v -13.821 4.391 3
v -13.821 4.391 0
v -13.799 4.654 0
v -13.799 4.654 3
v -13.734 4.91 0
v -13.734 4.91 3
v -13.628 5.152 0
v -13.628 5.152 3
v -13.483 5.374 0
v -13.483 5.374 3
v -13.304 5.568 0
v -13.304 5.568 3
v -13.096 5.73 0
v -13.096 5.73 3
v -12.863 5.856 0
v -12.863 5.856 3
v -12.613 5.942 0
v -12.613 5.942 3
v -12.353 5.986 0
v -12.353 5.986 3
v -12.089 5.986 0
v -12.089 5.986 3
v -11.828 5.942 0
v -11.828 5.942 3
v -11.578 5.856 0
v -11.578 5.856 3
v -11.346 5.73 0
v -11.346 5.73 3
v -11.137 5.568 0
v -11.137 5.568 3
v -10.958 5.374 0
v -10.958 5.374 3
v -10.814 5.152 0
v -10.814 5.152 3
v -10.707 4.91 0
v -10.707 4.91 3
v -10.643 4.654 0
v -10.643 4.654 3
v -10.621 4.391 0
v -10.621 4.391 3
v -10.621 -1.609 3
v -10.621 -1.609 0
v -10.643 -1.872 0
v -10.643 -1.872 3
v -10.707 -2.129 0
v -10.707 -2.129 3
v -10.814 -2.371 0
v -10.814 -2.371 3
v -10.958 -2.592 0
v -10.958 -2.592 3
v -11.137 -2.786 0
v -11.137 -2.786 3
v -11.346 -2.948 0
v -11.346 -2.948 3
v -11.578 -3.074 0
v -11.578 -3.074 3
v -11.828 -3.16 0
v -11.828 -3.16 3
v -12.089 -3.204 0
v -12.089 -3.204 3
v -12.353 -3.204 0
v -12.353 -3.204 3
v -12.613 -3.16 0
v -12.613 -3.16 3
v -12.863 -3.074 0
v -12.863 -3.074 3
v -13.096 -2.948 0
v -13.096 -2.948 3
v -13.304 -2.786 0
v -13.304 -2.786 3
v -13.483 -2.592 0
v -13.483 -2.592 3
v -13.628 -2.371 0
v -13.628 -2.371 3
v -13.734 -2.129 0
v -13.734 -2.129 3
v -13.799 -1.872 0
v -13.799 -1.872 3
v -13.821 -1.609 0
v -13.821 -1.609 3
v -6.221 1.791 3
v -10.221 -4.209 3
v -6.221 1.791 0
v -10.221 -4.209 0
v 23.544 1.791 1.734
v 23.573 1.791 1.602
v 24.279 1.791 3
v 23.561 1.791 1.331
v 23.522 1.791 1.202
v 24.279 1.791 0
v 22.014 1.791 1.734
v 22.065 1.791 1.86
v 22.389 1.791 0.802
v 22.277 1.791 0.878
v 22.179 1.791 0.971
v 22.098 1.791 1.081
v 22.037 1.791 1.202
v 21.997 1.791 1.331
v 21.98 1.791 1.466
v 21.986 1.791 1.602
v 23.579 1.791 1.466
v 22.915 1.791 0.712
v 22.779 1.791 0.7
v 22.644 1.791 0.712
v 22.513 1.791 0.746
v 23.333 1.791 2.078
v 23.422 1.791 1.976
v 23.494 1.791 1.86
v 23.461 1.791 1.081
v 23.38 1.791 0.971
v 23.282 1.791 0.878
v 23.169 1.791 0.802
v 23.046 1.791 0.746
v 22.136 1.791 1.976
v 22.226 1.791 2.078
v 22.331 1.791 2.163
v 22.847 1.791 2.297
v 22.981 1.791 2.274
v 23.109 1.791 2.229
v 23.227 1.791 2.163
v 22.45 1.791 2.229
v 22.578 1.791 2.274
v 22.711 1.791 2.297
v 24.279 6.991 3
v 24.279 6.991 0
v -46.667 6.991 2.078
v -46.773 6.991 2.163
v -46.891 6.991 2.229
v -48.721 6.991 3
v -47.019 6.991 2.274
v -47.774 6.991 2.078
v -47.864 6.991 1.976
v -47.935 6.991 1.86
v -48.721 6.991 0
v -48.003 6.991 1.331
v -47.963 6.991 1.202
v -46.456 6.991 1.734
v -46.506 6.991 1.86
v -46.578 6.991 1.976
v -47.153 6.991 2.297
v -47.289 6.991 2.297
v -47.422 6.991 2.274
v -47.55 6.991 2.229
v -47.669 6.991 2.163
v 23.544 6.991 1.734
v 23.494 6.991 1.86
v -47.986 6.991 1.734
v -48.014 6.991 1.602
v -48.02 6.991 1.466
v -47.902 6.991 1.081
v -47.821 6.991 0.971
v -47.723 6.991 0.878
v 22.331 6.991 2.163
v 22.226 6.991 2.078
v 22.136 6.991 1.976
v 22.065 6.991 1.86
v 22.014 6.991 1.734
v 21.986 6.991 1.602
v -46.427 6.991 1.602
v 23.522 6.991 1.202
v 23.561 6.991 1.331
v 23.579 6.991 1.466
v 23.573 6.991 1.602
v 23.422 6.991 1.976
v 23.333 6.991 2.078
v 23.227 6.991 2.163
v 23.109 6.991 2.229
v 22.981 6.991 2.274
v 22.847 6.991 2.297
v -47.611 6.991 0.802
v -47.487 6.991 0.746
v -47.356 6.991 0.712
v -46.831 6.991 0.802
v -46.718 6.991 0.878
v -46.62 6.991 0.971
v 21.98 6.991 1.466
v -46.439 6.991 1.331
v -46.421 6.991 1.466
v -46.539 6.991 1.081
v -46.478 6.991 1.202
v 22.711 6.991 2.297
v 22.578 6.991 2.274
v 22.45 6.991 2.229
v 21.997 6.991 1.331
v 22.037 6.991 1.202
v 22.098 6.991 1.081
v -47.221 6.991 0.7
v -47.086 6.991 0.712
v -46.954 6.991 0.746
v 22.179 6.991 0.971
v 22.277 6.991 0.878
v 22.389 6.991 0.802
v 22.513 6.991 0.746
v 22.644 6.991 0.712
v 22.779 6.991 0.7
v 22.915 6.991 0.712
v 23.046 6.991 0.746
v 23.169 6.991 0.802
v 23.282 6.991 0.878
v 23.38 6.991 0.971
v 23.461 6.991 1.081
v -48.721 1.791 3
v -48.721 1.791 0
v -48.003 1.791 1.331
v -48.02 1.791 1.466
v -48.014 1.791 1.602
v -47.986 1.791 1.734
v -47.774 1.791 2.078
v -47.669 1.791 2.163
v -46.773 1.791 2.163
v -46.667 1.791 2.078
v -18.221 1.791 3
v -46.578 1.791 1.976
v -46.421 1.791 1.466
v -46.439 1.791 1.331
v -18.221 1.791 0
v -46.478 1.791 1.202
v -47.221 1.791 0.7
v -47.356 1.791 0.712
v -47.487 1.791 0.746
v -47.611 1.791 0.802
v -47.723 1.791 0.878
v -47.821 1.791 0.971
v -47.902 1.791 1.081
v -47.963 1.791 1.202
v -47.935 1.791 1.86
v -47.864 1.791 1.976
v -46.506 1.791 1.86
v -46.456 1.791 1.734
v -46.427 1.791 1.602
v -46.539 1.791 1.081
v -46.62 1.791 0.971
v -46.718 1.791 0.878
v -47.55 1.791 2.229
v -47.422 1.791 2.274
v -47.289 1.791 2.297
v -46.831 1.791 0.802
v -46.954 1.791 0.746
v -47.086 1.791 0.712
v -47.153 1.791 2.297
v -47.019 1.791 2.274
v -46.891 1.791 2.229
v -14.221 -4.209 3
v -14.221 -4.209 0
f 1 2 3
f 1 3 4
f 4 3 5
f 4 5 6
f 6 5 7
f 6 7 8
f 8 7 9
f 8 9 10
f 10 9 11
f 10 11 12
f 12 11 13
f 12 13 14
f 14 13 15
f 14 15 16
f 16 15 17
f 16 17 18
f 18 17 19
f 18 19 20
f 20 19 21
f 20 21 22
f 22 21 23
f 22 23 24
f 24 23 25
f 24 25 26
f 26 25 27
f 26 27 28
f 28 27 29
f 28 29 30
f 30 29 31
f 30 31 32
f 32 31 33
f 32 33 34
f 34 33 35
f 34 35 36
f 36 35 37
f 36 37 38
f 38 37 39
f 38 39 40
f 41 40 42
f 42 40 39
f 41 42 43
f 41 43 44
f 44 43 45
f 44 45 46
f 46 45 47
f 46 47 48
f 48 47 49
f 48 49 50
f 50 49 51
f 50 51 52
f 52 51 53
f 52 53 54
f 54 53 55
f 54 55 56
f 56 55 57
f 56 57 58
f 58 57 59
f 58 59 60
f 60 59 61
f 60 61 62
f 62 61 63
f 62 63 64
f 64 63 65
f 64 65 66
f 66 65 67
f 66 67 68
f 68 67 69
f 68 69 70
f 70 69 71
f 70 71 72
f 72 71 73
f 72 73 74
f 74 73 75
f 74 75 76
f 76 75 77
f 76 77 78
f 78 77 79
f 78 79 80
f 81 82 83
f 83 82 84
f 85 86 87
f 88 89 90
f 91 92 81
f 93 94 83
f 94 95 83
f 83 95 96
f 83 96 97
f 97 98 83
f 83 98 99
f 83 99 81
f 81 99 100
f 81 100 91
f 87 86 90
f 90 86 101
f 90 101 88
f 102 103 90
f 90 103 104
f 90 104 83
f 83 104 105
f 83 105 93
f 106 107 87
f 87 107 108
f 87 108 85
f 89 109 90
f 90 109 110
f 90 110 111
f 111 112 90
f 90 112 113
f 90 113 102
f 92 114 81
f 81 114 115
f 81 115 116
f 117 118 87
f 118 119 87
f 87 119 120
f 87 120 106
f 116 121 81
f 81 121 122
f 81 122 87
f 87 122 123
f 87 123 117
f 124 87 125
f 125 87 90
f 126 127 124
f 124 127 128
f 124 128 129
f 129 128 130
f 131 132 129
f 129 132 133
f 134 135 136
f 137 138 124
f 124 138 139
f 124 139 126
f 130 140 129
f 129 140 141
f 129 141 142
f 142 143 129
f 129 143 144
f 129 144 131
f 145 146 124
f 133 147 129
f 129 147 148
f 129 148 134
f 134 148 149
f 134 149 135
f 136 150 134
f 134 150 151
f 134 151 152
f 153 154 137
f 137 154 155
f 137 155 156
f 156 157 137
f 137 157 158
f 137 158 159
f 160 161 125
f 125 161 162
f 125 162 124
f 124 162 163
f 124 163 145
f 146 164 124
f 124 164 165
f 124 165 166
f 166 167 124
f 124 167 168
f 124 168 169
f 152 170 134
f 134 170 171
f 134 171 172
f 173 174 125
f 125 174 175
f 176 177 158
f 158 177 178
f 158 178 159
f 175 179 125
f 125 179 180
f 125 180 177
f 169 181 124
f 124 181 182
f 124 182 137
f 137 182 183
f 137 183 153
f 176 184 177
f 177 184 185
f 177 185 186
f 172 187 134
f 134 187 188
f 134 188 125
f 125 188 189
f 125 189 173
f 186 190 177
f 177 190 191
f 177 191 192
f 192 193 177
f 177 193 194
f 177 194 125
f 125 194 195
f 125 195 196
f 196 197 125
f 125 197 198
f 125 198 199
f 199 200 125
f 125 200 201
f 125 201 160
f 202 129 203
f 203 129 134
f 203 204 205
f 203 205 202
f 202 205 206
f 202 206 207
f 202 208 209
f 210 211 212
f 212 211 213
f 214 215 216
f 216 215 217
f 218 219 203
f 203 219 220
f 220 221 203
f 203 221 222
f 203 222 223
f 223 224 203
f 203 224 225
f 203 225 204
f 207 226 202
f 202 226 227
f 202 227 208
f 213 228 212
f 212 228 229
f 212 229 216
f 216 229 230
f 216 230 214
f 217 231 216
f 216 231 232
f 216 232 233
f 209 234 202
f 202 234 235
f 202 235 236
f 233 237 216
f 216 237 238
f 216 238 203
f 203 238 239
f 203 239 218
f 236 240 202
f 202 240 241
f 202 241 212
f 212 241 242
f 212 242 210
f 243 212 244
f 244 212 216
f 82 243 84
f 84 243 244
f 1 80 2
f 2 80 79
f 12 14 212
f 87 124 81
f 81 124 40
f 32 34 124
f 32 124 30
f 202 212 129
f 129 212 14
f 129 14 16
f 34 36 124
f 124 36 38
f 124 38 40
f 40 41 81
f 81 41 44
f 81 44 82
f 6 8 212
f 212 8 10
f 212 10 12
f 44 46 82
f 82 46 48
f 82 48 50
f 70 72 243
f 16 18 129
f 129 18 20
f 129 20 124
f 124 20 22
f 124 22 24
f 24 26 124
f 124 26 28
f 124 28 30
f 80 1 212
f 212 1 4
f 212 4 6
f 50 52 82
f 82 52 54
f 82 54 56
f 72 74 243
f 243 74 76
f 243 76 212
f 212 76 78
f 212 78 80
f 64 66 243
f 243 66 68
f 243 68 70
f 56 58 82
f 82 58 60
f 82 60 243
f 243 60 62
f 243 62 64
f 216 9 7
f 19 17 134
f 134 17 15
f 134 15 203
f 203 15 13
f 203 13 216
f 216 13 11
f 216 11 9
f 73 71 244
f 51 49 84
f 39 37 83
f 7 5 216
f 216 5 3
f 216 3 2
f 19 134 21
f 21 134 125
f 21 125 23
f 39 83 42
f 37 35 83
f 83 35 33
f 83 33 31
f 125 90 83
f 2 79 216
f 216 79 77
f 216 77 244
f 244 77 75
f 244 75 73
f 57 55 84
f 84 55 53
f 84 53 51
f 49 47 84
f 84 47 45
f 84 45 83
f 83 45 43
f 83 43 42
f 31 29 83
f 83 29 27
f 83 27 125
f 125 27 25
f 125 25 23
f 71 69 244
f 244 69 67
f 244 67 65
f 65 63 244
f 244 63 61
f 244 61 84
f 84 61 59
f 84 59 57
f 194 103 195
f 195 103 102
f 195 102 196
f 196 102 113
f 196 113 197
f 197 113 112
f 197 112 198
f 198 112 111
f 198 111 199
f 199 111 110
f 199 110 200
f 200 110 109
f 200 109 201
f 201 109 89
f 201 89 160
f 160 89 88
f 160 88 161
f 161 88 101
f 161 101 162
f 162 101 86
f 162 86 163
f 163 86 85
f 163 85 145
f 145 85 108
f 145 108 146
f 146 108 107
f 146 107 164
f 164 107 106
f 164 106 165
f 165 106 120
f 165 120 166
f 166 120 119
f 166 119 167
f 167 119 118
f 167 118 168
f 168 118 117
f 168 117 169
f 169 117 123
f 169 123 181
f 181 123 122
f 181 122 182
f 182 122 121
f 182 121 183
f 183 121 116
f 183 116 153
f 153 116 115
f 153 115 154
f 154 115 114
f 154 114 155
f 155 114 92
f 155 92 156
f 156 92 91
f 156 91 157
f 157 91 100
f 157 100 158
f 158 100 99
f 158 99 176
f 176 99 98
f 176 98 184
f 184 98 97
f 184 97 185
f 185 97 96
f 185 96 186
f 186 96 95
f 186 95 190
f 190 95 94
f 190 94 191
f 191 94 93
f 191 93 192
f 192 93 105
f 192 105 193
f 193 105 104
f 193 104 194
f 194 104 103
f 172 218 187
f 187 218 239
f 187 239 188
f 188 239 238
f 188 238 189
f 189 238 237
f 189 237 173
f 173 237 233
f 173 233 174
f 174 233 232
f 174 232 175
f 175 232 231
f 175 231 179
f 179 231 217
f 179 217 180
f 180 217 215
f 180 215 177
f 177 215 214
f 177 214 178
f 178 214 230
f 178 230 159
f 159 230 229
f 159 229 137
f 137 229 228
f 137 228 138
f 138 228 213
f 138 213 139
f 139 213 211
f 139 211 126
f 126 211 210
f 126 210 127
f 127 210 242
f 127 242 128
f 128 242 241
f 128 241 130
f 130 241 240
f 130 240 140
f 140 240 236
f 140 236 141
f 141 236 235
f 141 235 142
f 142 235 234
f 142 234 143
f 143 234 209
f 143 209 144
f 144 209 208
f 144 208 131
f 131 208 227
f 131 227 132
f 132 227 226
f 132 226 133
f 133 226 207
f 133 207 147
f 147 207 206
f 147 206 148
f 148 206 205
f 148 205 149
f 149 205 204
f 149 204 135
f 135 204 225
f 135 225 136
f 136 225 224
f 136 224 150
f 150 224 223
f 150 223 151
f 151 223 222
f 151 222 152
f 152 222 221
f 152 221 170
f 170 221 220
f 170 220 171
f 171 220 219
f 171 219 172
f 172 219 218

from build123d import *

# Parameters (mm, degrees)
BOSS_EXTRUDE1_DEPTH = 3
SKETCH2_R           = 0.8
CUT_EXTRUDE1_DEPTH  = 50.180347904


with BuildPart() as part:
    # Sketch1 → Boss-Extrude1 (new body)
    with BuildSketch(Plane.XY):
        Polygon((-48.720700118, 1.790980695), (-18.220700118, 1.790980695), (-14.220700118, -4.209019305), (-10.220700118, -4.209019305), (-6.220700118, 1.790980695), (24.279299882, 1.790980695), (24.279299882, 6.990980695), (-48.720700118, 6.990980695), align=None)
        with BuildLine():
            ThreePointArc((-10.620700118, -1.609019305), (-12.220700118, -3.209019305), (-13.820700118, -1.609019305))
            Line((-13.820700118, -1.609019305), (-13.820700118, 4.390980695))
            ThreePointArc((-13.820700118, 4.390980695), (-12.220700118, 5.990980695), (-10.620700118, 4.390980695))
            Line((-10.620700118, 4.390980695), (-10.620700118, -1.609019305))
        make_face(mode=Mode.SUBTRACT)
    extrude(amount=BOSS_EXTRUDE1_DEPTH)

    # Sketch2 → Cut-Extrude1 (cut, through all)
    with BuildSketch(Plane.XZ.offset(-1.790980695)):
        with Locations((22.779299882, 1.5)):
            Circle(SKETCH2_R)
        with Locations((-47.220700118, 1.5)):
            Circle(SKETCH2_R)
    extrude(amount=-CUT_EXTRUDE1_DEPTH, mode=Mode.SUBTRACT)


solid = part.part
